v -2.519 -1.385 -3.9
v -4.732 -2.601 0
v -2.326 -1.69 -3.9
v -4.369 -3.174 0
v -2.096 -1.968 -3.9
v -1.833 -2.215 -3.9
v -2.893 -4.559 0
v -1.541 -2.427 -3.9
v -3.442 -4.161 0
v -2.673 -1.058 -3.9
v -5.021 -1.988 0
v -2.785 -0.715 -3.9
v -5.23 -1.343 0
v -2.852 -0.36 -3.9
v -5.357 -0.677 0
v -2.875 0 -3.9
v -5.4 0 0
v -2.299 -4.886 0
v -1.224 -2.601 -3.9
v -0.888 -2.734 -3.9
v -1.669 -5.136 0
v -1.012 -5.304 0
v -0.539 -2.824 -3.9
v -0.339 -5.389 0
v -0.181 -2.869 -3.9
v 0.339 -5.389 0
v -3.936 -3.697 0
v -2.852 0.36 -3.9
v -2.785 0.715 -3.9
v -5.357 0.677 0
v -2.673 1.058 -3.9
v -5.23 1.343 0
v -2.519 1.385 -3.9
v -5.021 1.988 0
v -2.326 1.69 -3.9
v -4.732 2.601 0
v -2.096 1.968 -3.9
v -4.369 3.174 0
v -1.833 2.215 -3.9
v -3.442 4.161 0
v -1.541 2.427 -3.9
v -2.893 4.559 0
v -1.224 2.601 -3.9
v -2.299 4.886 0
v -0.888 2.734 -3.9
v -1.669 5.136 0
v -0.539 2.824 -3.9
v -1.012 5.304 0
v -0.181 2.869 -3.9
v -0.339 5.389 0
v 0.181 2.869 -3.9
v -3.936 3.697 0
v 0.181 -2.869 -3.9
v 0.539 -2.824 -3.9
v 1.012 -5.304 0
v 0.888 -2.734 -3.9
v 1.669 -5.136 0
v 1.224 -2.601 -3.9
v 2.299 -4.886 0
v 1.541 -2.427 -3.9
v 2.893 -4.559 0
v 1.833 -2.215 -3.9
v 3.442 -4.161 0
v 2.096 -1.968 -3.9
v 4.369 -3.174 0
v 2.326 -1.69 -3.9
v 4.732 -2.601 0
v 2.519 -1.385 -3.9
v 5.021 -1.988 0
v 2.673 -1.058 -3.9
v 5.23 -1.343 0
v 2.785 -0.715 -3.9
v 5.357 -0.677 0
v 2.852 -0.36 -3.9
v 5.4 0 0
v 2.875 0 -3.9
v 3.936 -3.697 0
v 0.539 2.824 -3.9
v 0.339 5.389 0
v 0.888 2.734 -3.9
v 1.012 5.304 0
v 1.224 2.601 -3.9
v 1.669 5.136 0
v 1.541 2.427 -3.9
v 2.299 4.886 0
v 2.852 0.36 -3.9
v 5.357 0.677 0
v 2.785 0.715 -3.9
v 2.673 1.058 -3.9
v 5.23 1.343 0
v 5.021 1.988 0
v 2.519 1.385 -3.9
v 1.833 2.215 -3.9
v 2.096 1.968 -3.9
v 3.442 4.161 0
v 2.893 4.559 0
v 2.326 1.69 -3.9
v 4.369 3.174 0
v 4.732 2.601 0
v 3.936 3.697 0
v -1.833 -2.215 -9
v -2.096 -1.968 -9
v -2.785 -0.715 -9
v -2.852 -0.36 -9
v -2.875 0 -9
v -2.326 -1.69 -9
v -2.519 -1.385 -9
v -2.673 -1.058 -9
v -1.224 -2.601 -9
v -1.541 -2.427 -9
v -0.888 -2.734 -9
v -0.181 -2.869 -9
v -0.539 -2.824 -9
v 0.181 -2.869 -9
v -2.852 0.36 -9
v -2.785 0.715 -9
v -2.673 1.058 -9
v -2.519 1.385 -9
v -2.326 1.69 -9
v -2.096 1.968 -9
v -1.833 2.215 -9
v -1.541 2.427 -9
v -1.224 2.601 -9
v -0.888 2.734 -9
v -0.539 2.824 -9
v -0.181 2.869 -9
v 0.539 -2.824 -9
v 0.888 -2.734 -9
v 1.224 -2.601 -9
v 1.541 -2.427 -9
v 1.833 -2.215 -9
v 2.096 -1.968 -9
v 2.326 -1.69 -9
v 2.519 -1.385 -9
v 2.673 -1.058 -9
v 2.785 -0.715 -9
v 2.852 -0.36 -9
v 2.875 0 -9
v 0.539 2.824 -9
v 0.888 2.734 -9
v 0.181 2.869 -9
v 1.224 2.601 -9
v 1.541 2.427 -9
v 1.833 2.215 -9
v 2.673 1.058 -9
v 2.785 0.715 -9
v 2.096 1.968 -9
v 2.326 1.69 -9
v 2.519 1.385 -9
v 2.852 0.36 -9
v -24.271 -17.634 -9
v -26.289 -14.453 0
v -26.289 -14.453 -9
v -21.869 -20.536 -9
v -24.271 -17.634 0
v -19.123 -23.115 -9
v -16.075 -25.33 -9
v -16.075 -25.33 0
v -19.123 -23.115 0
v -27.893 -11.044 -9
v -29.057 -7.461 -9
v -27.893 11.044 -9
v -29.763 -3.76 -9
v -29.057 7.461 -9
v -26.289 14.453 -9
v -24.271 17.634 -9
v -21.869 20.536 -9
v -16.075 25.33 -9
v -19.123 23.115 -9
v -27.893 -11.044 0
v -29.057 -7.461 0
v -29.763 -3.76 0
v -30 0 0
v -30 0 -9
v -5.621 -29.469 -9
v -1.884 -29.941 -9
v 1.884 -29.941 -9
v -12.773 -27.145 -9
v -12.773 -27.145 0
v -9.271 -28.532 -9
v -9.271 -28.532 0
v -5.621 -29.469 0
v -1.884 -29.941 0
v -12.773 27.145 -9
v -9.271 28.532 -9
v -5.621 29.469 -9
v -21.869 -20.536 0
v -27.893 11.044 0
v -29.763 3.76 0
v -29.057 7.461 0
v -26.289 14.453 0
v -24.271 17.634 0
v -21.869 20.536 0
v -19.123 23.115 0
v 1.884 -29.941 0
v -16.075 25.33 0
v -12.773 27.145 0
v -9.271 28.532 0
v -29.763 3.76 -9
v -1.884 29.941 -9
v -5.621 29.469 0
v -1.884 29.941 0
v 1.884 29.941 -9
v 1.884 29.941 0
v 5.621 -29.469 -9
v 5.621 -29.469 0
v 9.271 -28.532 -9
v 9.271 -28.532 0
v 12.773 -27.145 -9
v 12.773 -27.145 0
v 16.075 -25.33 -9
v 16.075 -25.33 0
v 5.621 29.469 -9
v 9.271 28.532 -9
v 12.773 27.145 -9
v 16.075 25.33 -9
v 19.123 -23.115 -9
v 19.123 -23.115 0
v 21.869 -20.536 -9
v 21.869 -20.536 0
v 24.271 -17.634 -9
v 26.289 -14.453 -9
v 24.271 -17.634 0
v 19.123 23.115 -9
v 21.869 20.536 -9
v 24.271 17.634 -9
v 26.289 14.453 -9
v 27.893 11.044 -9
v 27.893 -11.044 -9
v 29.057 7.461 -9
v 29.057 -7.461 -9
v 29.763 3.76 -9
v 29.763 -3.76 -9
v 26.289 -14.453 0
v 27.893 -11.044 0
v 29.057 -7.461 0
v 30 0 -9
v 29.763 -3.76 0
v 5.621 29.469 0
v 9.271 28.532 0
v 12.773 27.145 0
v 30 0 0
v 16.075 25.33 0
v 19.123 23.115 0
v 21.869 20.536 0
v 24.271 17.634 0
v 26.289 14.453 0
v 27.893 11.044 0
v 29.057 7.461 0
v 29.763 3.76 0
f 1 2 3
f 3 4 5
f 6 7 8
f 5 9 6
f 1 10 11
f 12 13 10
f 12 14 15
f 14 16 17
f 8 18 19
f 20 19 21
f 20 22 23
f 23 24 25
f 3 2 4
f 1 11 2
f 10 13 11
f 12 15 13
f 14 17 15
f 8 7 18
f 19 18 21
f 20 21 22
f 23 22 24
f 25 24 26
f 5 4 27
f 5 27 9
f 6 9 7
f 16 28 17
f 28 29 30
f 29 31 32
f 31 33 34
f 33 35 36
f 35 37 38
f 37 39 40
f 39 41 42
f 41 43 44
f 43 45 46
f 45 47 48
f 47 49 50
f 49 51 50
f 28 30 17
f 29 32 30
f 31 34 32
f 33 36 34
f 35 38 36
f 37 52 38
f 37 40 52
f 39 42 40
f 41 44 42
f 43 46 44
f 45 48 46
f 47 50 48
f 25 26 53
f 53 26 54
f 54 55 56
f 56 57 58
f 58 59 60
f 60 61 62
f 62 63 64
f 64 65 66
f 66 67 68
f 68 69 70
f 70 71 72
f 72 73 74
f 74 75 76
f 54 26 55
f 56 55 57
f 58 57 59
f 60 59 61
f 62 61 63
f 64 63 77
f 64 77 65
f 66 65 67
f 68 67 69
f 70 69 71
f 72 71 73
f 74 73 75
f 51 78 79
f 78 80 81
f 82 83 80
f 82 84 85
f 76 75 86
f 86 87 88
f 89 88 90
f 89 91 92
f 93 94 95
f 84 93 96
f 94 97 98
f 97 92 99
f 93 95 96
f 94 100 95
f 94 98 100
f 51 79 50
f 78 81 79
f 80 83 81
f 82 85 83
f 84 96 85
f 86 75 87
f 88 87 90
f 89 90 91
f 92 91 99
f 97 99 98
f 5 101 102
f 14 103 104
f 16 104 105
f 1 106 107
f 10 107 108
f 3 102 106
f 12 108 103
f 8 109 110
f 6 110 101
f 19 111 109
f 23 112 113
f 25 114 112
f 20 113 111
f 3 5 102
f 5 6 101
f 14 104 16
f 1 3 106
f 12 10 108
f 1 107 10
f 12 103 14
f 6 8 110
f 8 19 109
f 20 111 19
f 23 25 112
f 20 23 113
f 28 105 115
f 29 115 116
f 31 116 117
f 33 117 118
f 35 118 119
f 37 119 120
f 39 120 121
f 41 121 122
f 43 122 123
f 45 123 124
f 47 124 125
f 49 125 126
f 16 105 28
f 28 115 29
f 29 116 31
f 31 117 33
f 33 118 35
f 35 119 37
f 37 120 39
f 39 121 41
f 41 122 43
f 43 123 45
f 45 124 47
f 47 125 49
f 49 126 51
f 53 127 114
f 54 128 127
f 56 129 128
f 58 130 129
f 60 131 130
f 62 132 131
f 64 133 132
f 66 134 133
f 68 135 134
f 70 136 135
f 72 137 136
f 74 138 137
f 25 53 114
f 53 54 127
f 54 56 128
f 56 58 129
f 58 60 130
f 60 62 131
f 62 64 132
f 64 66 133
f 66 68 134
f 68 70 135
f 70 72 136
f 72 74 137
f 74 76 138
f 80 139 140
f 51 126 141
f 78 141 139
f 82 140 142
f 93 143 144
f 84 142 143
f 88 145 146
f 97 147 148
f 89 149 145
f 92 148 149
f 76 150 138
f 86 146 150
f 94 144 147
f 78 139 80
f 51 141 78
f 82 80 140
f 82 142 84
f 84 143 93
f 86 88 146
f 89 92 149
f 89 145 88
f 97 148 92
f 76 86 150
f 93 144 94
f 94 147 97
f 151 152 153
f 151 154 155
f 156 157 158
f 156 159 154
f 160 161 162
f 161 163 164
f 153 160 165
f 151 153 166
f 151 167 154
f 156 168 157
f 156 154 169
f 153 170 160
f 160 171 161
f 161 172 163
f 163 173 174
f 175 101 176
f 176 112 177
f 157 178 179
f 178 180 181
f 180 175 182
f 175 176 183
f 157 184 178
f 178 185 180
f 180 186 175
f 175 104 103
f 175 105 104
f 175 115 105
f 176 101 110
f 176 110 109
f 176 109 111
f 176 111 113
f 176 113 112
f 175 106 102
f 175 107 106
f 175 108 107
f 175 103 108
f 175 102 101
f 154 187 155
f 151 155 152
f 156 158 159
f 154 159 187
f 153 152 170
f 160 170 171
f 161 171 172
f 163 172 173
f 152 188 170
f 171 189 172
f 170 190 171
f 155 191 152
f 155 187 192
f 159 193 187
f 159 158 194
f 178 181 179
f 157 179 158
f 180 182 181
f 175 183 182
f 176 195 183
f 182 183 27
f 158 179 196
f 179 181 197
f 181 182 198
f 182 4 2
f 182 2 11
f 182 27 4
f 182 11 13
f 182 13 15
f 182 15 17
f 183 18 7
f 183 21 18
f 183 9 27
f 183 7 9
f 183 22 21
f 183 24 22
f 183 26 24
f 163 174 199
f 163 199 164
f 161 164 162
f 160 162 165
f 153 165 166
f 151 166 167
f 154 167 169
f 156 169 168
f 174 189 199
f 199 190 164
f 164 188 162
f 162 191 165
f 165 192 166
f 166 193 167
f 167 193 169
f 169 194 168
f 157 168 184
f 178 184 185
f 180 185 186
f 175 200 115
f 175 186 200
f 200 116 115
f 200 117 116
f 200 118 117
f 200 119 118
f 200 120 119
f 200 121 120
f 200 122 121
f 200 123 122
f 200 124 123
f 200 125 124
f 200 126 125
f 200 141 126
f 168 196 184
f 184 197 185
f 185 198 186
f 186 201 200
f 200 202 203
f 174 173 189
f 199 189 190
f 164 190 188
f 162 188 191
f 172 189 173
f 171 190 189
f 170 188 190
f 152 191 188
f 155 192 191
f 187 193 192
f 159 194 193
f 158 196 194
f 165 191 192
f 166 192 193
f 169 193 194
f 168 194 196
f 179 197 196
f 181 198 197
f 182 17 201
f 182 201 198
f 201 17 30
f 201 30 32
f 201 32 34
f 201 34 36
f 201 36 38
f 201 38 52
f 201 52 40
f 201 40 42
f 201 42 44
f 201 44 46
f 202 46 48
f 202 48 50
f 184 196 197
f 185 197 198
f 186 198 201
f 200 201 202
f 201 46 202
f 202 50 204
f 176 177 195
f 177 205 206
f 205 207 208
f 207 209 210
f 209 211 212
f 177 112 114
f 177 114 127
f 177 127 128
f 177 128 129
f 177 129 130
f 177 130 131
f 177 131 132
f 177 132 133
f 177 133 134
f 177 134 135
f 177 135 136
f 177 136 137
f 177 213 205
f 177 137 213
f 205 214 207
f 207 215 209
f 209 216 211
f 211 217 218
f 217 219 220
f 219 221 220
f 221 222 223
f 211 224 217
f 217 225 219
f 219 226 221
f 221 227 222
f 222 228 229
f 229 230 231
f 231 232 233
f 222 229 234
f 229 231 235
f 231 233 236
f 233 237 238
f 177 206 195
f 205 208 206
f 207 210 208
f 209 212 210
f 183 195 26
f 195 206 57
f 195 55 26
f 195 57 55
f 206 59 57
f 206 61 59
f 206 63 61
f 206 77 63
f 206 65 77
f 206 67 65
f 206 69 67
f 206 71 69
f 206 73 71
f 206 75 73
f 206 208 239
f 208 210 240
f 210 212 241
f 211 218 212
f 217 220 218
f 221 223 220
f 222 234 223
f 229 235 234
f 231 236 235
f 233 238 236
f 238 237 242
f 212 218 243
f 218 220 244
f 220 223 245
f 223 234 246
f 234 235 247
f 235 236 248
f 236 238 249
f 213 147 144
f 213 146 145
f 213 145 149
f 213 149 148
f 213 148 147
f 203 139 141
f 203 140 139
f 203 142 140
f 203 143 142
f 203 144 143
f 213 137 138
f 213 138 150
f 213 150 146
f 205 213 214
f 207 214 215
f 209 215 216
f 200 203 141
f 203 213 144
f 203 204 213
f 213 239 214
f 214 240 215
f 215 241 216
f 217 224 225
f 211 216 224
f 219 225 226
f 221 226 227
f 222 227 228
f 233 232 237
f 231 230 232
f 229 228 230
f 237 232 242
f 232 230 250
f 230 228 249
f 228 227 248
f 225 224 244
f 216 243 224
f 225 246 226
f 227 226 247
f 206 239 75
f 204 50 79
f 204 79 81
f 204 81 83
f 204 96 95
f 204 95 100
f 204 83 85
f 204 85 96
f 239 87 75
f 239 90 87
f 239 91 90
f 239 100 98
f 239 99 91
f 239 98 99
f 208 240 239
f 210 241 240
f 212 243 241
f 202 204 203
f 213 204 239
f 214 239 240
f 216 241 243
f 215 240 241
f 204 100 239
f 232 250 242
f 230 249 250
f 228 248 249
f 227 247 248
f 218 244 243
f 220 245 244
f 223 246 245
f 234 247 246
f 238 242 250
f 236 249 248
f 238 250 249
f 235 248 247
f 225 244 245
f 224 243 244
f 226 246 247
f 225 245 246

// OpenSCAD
$fn = 50;

difference() {
	union() {
		translate(v = [0, 0, -9.0]) {
			cylinder(h = 9, r = 30.0);
		}
	}
	union() {
		translate(v = [0, 0, 0]) {
			rotate(a = [0, 0, 0]) {
				difference() {
					union() {
						translate(v = [0, 0, -12.0]) {
							cylinder(h = 12, r = 2.6);
						}
						translate(v = [0, 0, -3.9]) {
							cylinder(h = 3.9, r1 = 2.875, r2 = 5.4);
						}
						translate(v = [0, 0, -12.0]) {
							cylinder(h = 12, r = 2.875);
						}
						translate(v = [0, 0, -12.0]) {
							cylinder(h = 12, r = 2.6);
						}
					}
					union();
				}
			}
		}
	}
}
